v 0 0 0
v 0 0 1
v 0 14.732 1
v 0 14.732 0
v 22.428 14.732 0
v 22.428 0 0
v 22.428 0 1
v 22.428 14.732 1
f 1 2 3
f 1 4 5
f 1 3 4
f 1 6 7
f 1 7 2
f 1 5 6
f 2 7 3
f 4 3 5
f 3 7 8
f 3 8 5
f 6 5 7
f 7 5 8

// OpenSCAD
/* Warning, this is a very basic generator with a lot of approximation 
input data : [MODULE, LDB, 22.428x14.732mm, 36, , B, C04-21306B]
generated by com.zoubworld.electronics.cad.model3d.Basic
Date : Sun Feb 15 10:50:49 CET 2026
*/

//body
color("black")
translate([0,0,0])
cube([22.428,14.732,1.0], center=false);
